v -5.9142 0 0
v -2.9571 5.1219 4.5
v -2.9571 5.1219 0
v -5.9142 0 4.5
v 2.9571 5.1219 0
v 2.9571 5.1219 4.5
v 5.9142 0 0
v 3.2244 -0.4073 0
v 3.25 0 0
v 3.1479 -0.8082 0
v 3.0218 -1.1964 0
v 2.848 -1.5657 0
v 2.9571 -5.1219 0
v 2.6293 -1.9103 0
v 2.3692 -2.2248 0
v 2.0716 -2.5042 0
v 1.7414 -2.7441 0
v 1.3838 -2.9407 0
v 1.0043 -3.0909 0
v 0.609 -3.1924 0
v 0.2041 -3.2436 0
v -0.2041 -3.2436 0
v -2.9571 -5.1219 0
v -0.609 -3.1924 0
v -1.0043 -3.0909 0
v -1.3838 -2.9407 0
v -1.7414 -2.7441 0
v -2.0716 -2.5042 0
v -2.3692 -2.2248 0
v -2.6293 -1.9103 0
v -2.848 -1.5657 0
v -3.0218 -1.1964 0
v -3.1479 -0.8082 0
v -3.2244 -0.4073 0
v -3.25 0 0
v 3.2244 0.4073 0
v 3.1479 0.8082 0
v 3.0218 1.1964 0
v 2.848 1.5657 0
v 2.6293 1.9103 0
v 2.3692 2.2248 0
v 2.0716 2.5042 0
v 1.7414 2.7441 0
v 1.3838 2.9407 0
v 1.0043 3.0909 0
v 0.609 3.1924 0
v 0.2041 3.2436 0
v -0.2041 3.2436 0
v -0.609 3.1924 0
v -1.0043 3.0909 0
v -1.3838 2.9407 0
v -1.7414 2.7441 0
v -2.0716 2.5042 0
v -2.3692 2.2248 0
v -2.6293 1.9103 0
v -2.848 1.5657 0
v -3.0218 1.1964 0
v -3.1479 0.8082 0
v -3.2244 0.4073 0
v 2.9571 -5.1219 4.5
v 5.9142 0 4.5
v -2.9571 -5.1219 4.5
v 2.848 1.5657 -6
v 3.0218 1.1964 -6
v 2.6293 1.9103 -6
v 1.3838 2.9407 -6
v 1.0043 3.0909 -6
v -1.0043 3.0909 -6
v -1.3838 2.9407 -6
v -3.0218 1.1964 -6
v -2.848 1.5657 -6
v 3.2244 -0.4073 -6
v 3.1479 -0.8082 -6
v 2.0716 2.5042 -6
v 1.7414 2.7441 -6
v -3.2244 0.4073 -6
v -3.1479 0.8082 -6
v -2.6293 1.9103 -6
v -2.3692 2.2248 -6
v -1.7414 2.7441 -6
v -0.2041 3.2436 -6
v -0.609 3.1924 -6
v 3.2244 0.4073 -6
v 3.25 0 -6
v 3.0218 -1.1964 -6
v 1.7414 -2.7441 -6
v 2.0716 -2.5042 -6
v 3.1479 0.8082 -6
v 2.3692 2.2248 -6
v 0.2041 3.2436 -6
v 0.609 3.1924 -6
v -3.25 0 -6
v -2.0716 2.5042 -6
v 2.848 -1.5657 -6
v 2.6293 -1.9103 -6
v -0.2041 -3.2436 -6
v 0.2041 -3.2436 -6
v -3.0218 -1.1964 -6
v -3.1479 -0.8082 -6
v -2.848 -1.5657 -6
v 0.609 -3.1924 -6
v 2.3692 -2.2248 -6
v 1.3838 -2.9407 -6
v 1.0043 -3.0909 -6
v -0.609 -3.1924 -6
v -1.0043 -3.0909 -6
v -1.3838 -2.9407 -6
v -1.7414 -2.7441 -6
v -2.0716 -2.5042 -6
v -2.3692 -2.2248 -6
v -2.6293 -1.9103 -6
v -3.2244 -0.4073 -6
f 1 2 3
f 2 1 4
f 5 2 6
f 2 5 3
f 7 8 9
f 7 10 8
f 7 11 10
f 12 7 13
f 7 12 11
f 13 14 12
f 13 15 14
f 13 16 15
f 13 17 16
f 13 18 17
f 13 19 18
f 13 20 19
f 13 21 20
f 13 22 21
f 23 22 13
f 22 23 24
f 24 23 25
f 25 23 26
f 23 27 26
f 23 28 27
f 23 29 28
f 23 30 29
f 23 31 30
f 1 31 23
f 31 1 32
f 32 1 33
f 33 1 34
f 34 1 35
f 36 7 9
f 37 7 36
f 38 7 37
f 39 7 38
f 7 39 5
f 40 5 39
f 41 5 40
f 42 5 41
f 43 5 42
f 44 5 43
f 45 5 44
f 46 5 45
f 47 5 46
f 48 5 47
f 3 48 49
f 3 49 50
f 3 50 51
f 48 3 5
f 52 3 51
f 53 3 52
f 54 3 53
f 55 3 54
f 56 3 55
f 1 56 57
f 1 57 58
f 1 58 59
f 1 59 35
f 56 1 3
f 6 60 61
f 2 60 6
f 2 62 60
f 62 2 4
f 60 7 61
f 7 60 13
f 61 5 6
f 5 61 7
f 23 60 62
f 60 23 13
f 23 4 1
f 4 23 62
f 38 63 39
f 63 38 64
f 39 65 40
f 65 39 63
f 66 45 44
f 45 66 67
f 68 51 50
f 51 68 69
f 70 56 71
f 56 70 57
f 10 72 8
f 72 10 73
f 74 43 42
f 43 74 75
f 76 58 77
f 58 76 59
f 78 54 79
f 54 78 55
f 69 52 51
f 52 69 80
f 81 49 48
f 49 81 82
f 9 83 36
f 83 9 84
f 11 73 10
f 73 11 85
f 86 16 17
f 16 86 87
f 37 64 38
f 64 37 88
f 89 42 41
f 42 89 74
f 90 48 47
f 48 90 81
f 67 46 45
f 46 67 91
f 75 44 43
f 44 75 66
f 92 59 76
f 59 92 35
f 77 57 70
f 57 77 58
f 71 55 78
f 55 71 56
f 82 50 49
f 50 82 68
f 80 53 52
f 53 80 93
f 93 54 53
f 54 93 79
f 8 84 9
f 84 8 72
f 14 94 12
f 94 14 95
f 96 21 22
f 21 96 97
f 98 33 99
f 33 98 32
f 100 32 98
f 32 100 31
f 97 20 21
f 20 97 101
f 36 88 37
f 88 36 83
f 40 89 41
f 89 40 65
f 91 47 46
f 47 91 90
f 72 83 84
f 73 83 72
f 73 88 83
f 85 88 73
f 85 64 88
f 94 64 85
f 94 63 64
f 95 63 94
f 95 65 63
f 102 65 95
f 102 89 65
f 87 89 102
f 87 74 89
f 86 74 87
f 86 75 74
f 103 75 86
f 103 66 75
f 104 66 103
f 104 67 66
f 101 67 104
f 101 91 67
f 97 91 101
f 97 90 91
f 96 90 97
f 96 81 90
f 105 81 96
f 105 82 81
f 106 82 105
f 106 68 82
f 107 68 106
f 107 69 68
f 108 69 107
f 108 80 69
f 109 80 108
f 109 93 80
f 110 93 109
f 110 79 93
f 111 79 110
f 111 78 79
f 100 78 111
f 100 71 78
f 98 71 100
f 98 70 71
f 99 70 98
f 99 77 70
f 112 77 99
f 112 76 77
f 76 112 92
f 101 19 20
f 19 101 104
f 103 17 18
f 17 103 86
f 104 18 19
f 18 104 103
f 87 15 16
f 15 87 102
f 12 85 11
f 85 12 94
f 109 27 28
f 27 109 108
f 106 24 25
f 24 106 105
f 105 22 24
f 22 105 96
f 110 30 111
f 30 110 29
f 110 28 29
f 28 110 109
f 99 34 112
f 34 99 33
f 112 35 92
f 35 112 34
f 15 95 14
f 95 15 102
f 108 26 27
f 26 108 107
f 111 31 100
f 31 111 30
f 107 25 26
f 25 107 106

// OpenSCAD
$fn = 50;


difference() {
	union() {
		translate(v = [0, 0, 0]) {
			rotate(a = [0, 0, 0]) {
				translate(v = [0, 0, 0]) {
					rotate(a = [0, 0, 0]) {
						linear_extrude(height = 4.5000000000) {
							polygon(points = [[5.9142500000, 0.0000000000], [2.9571250000, 5.1218907443], [-2.9571250000, 5.1218907443], [-5.9142500000, 0.0000000000], [-2.9571250000, -5.1218907443], [2.9571250000, -5.1218907443]]);
						}
					}
				}
			}
		}
		translate(v = [0, 0, -6]) {
			rotate(a = [0, 0, 0]) {
				cylinder(h = 6, r = 3.2500000000);
			}
		}
	}
	union();
}
